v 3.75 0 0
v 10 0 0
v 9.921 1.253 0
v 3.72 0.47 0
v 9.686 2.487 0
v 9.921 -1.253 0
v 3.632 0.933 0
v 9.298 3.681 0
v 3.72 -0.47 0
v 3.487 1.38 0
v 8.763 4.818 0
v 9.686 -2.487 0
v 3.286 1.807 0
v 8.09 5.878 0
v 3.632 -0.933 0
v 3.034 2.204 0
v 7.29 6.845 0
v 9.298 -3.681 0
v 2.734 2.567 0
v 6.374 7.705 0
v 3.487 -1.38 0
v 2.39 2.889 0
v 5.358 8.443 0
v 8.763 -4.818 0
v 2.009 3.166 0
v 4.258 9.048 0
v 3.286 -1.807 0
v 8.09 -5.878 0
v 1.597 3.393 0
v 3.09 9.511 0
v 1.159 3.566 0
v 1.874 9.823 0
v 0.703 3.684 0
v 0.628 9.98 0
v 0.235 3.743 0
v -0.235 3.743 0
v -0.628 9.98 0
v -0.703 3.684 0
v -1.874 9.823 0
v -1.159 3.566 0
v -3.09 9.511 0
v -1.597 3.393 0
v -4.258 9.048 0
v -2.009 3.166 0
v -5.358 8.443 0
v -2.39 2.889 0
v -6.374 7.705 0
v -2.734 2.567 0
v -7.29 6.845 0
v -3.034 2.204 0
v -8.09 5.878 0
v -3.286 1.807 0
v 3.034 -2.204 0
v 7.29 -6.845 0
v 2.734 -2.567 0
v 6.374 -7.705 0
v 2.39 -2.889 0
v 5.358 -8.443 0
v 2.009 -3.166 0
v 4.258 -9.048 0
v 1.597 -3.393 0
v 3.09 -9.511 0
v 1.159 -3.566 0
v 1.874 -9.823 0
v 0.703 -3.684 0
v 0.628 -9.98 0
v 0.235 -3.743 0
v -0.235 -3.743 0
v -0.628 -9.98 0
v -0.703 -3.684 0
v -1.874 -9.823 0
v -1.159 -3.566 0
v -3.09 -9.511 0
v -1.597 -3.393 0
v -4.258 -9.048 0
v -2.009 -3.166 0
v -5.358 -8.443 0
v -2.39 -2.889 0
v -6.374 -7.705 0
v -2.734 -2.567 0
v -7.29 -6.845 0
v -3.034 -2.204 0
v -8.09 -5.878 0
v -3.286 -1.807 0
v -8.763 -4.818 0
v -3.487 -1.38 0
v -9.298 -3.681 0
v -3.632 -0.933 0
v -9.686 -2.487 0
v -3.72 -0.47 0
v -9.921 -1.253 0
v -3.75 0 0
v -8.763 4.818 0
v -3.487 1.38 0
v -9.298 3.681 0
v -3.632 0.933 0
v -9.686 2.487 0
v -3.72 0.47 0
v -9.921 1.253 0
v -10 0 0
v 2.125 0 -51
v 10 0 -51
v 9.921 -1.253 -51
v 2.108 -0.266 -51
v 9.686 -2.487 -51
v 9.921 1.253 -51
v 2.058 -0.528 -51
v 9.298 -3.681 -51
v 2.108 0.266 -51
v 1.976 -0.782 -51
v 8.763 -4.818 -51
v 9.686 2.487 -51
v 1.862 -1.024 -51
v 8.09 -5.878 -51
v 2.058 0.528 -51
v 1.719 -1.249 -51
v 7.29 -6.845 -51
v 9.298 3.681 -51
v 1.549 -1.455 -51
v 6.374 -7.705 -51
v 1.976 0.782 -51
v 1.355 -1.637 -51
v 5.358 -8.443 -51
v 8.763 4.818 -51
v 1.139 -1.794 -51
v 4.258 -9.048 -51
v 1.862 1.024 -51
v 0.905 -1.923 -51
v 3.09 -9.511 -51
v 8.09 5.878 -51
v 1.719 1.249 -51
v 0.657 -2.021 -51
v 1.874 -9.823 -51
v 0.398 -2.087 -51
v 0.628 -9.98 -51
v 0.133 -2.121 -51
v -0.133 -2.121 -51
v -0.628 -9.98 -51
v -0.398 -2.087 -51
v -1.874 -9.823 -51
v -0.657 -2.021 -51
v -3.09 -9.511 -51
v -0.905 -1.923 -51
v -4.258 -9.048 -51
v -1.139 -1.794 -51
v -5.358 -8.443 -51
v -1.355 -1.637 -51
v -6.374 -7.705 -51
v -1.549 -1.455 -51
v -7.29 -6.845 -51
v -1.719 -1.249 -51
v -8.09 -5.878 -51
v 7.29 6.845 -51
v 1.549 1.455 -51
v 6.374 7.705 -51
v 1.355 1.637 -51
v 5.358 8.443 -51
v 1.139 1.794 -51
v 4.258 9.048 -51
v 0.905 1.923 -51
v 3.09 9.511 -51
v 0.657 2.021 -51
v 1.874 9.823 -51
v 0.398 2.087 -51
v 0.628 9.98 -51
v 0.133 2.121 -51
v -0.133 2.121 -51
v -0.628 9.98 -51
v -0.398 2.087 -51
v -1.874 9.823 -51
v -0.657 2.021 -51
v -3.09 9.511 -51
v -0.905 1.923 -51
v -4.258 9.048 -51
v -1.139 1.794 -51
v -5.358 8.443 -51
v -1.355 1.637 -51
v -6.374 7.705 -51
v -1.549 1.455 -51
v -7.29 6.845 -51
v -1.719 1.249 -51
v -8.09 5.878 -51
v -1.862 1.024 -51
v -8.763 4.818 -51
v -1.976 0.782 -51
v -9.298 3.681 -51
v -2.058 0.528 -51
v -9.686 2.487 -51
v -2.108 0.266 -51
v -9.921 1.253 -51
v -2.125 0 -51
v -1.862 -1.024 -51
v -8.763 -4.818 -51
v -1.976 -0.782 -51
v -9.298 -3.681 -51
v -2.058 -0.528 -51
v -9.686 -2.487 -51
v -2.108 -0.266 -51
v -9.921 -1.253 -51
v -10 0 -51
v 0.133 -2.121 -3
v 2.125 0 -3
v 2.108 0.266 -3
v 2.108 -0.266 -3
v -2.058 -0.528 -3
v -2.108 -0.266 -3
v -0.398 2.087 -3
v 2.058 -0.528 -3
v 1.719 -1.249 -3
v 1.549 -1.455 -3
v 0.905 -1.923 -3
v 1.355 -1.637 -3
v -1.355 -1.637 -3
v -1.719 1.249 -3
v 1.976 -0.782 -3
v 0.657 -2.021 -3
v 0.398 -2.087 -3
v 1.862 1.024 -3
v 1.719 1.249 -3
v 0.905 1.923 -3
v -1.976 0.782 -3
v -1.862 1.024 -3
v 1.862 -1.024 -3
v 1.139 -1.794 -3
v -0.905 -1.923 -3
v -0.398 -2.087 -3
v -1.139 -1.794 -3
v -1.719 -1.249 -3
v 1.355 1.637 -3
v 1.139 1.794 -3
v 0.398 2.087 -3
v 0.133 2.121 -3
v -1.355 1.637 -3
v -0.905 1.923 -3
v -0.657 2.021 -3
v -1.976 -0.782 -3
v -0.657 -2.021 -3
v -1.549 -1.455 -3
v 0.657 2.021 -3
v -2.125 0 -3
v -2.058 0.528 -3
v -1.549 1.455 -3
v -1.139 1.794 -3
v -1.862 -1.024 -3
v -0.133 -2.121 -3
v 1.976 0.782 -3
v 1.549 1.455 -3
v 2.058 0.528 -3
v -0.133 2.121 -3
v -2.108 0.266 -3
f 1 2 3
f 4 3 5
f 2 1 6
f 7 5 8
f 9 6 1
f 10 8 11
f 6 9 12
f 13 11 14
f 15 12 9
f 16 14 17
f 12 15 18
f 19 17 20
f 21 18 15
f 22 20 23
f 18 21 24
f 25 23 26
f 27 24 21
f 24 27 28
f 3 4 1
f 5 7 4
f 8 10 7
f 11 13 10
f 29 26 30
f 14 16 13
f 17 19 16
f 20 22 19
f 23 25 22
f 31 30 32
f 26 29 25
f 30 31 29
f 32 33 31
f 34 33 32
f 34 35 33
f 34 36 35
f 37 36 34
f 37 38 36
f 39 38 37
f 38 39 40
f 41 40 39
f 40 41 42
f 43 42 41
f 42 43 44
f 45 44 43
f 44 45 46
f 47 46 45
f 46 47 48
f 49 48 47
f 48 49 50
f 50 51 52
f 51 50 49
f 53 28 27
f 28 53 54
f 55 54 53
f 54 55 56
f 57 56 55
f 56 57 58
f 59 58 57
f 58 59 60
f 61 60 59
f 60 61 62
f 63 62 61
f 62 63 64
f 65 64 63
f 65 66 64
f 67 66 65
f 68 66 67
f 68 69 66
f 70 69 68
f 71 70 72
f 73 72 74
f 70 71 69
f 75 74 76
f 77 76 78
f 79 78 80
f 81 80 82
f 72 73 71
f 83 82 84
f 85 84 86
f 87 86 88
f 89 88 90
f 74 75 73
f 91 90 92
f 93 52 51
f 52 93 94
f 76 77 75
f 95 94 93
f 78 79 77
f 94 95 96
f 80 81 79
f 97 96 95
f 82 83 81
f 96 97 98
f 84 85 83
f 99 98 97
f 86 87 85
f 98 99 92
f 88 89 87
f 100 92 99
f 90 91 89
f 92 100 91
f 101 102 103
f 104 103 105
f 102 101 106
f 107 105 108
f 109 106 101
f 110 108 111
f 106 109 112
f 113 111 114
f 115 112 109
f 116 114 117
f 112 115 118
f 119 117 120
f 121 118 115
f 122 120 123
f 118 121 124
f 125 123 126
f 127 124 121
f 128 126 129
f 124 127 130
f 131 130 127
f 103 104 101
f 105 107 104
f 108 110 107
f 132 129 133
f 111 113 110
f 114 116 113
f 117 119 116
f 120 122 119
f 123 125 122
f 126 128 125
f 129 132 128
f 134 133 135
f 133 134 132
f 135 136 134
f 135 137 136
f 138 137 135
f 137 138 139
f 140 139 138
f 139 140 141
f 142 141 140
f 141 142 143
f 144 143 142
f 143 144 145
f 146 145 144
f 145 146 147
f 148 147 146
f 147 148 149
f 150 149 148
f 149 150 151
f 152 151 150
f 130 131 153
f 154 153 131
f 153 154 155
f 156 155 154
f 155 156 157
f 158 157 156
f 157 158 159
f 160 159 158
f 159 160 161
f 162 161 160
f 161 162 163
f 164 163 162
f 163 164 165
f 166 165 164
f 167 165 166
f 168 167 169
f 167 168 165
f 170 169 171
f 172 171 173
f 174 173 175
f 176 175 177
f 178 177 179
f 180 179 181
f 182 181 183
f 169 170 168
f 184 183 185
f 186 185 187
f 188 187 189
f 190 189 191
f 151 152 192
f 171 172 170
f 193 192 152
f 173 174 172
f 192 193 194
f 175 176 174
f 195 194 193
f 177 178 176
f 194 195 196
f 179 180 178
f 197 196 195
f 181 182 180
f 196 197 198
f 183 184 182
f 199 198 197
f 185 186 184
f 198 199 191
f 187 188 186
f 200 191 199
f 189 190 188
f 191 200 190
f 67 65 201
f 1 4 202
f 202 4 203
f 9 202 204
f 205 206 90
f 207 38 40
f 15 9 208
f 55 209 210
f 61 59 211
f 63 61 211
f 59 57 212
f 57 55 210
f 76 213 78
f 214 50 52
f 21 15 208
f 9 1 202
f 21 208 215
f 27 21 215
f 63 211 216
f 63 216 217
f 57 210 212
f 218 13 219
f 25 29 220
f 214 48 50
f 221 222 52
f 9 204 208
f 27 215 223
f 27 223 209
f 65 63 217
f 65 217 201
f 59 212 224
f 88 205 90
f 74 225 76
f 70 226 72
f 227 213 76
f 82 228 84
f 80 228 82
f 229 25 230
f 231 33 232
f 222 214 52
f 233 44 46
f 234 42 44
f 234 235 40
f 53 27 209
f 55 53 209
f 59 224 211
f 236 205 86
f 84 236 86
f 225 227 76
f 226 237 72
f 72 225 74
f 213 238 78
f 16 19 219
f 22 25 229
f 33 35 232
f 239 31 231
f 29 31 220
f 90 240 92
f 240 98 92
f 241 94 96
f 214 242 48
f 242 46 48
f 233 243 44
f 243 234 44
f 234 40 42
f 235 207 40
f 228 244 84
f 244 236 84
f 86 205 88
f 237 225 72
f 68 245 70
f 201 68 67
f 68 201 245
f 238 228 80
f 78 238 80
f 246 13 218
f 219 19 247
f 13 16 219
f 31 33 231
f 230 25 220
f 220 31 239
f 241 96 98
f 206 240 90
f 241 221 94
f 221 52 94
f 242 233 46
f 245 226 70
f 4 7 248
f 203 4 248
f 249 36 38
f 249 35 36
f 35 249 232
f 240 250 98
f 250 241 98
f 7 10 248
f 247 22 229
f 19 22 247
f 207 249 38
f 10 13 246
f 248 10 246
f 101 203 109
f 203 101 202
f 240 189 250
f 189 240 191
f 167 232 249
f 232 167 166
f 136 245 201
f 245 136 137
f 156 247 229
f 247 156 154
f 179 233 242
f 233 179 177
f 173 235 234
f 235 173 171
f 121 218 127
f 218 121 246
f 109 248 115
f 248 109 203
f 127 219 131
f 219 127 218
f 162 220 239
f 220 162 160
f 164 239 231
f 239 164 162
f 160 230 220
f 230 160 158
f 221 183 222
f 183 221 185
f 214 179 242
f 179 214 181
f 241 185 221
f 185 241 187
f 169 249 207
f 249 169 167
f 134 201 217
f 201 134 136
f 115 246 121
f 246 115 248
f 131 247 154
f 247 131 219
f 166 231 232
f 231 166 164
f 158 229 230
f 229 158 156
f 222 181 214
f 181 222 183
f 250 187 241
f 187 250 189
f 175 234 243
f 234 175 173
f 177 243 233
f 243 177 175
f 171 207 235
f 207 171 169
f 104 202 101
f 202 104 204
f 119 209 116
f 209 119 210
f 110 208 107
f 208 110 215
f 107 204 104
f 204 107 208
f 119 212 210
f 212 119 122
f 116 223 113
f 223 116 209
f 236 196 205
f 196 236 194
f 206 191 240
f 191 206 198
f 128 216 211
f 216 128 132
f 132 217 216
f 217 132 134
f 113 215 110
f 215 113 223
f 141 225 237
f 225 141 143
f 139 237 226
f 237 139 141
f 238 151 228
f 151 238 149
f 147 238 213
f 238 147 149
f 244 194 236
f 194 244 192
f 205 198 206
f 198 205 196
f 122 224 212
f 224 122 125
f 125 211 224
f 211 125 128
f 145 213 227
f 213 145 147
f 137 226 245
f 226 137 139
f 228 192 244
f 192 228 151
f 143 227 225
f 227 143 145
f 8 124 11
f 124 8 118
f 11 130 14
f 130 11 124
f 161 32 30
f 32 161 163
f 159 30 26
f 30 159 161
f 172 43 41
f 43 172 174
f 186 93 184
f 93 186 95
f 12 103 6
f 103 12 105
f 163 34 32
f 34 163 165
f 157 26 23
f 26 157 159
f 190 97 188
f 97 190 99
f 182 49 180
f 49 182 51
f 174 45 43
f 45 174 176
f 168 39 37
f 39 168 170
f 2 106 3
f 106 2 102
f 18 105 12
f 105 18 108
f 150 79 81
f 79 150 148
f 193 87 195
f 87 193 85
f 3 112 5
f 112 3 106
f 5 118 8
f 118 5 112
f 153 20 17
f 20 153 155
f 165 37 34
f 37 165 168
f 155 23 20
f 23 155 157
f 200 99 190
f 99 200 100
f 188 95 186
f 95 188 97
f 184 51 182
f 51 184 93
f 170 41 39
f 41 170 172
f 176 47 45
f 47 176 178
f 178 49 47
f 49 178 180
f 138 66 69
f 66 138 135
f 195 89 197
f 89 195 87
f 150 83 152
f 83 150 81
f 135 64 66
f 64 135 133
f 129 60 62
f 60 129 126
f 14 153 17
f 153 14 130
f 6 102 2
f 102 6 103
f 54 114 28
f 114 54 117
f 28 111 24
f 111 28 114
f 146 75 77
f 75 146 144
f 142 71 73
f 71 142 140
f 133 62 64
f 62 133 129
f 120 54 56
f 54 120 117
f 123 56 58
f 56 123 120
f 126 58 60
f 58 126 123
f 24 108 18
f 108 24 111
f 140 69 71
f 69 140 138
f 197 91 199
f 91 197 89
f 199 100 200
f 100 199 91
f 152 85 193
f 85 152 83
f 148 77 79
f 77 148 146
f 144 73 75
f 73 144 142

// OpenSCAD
$fn = 50;


difference() {
	union() {
		translate(v = [0, 0, -51.0000000000]) {
			cylinder(h = 51, r = 10.0000000000);
		}
	}
	union() {
		translate(v = [0, 0, 0]) {
			rotate(a = [0, 0, 0]) {
				difference() {
					union() {
						#translate(v = [0, 0, -51.0000000000]) {
							cylinder(h = 51, r = 2.0000000000);
						}
						#translate(v = [0, 0, -3]) {
							cylinder(h = 3, r1 = 2.1250000000, r2 = 3.7500000000);
						}
						#translate(v = [0, 0, -51.0000000000]) {
							cylinder(h = 51, r = 2.1250000000);
						}
						#translate(v = [0, 0, -51.0000000000]) {
							cylinder(h = 51, r = 2.0000000000);
						}
					}
					union();
				}
			}
		}
	}
}
